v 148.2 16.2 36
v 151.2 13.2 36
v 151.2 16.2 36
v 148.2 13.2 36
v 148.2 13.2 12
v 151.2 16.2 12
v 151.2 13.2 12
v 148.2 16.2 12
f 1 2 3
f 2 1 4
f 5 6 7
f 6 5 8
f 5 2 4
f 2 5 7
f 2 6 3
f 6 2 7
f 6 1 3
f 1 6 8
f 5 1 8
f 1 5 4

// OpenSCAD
translate(v = [148.2, 13.200000000000001, 12.0]) {
	cube(size = [3.0, 3.0, 24.0]);
}
